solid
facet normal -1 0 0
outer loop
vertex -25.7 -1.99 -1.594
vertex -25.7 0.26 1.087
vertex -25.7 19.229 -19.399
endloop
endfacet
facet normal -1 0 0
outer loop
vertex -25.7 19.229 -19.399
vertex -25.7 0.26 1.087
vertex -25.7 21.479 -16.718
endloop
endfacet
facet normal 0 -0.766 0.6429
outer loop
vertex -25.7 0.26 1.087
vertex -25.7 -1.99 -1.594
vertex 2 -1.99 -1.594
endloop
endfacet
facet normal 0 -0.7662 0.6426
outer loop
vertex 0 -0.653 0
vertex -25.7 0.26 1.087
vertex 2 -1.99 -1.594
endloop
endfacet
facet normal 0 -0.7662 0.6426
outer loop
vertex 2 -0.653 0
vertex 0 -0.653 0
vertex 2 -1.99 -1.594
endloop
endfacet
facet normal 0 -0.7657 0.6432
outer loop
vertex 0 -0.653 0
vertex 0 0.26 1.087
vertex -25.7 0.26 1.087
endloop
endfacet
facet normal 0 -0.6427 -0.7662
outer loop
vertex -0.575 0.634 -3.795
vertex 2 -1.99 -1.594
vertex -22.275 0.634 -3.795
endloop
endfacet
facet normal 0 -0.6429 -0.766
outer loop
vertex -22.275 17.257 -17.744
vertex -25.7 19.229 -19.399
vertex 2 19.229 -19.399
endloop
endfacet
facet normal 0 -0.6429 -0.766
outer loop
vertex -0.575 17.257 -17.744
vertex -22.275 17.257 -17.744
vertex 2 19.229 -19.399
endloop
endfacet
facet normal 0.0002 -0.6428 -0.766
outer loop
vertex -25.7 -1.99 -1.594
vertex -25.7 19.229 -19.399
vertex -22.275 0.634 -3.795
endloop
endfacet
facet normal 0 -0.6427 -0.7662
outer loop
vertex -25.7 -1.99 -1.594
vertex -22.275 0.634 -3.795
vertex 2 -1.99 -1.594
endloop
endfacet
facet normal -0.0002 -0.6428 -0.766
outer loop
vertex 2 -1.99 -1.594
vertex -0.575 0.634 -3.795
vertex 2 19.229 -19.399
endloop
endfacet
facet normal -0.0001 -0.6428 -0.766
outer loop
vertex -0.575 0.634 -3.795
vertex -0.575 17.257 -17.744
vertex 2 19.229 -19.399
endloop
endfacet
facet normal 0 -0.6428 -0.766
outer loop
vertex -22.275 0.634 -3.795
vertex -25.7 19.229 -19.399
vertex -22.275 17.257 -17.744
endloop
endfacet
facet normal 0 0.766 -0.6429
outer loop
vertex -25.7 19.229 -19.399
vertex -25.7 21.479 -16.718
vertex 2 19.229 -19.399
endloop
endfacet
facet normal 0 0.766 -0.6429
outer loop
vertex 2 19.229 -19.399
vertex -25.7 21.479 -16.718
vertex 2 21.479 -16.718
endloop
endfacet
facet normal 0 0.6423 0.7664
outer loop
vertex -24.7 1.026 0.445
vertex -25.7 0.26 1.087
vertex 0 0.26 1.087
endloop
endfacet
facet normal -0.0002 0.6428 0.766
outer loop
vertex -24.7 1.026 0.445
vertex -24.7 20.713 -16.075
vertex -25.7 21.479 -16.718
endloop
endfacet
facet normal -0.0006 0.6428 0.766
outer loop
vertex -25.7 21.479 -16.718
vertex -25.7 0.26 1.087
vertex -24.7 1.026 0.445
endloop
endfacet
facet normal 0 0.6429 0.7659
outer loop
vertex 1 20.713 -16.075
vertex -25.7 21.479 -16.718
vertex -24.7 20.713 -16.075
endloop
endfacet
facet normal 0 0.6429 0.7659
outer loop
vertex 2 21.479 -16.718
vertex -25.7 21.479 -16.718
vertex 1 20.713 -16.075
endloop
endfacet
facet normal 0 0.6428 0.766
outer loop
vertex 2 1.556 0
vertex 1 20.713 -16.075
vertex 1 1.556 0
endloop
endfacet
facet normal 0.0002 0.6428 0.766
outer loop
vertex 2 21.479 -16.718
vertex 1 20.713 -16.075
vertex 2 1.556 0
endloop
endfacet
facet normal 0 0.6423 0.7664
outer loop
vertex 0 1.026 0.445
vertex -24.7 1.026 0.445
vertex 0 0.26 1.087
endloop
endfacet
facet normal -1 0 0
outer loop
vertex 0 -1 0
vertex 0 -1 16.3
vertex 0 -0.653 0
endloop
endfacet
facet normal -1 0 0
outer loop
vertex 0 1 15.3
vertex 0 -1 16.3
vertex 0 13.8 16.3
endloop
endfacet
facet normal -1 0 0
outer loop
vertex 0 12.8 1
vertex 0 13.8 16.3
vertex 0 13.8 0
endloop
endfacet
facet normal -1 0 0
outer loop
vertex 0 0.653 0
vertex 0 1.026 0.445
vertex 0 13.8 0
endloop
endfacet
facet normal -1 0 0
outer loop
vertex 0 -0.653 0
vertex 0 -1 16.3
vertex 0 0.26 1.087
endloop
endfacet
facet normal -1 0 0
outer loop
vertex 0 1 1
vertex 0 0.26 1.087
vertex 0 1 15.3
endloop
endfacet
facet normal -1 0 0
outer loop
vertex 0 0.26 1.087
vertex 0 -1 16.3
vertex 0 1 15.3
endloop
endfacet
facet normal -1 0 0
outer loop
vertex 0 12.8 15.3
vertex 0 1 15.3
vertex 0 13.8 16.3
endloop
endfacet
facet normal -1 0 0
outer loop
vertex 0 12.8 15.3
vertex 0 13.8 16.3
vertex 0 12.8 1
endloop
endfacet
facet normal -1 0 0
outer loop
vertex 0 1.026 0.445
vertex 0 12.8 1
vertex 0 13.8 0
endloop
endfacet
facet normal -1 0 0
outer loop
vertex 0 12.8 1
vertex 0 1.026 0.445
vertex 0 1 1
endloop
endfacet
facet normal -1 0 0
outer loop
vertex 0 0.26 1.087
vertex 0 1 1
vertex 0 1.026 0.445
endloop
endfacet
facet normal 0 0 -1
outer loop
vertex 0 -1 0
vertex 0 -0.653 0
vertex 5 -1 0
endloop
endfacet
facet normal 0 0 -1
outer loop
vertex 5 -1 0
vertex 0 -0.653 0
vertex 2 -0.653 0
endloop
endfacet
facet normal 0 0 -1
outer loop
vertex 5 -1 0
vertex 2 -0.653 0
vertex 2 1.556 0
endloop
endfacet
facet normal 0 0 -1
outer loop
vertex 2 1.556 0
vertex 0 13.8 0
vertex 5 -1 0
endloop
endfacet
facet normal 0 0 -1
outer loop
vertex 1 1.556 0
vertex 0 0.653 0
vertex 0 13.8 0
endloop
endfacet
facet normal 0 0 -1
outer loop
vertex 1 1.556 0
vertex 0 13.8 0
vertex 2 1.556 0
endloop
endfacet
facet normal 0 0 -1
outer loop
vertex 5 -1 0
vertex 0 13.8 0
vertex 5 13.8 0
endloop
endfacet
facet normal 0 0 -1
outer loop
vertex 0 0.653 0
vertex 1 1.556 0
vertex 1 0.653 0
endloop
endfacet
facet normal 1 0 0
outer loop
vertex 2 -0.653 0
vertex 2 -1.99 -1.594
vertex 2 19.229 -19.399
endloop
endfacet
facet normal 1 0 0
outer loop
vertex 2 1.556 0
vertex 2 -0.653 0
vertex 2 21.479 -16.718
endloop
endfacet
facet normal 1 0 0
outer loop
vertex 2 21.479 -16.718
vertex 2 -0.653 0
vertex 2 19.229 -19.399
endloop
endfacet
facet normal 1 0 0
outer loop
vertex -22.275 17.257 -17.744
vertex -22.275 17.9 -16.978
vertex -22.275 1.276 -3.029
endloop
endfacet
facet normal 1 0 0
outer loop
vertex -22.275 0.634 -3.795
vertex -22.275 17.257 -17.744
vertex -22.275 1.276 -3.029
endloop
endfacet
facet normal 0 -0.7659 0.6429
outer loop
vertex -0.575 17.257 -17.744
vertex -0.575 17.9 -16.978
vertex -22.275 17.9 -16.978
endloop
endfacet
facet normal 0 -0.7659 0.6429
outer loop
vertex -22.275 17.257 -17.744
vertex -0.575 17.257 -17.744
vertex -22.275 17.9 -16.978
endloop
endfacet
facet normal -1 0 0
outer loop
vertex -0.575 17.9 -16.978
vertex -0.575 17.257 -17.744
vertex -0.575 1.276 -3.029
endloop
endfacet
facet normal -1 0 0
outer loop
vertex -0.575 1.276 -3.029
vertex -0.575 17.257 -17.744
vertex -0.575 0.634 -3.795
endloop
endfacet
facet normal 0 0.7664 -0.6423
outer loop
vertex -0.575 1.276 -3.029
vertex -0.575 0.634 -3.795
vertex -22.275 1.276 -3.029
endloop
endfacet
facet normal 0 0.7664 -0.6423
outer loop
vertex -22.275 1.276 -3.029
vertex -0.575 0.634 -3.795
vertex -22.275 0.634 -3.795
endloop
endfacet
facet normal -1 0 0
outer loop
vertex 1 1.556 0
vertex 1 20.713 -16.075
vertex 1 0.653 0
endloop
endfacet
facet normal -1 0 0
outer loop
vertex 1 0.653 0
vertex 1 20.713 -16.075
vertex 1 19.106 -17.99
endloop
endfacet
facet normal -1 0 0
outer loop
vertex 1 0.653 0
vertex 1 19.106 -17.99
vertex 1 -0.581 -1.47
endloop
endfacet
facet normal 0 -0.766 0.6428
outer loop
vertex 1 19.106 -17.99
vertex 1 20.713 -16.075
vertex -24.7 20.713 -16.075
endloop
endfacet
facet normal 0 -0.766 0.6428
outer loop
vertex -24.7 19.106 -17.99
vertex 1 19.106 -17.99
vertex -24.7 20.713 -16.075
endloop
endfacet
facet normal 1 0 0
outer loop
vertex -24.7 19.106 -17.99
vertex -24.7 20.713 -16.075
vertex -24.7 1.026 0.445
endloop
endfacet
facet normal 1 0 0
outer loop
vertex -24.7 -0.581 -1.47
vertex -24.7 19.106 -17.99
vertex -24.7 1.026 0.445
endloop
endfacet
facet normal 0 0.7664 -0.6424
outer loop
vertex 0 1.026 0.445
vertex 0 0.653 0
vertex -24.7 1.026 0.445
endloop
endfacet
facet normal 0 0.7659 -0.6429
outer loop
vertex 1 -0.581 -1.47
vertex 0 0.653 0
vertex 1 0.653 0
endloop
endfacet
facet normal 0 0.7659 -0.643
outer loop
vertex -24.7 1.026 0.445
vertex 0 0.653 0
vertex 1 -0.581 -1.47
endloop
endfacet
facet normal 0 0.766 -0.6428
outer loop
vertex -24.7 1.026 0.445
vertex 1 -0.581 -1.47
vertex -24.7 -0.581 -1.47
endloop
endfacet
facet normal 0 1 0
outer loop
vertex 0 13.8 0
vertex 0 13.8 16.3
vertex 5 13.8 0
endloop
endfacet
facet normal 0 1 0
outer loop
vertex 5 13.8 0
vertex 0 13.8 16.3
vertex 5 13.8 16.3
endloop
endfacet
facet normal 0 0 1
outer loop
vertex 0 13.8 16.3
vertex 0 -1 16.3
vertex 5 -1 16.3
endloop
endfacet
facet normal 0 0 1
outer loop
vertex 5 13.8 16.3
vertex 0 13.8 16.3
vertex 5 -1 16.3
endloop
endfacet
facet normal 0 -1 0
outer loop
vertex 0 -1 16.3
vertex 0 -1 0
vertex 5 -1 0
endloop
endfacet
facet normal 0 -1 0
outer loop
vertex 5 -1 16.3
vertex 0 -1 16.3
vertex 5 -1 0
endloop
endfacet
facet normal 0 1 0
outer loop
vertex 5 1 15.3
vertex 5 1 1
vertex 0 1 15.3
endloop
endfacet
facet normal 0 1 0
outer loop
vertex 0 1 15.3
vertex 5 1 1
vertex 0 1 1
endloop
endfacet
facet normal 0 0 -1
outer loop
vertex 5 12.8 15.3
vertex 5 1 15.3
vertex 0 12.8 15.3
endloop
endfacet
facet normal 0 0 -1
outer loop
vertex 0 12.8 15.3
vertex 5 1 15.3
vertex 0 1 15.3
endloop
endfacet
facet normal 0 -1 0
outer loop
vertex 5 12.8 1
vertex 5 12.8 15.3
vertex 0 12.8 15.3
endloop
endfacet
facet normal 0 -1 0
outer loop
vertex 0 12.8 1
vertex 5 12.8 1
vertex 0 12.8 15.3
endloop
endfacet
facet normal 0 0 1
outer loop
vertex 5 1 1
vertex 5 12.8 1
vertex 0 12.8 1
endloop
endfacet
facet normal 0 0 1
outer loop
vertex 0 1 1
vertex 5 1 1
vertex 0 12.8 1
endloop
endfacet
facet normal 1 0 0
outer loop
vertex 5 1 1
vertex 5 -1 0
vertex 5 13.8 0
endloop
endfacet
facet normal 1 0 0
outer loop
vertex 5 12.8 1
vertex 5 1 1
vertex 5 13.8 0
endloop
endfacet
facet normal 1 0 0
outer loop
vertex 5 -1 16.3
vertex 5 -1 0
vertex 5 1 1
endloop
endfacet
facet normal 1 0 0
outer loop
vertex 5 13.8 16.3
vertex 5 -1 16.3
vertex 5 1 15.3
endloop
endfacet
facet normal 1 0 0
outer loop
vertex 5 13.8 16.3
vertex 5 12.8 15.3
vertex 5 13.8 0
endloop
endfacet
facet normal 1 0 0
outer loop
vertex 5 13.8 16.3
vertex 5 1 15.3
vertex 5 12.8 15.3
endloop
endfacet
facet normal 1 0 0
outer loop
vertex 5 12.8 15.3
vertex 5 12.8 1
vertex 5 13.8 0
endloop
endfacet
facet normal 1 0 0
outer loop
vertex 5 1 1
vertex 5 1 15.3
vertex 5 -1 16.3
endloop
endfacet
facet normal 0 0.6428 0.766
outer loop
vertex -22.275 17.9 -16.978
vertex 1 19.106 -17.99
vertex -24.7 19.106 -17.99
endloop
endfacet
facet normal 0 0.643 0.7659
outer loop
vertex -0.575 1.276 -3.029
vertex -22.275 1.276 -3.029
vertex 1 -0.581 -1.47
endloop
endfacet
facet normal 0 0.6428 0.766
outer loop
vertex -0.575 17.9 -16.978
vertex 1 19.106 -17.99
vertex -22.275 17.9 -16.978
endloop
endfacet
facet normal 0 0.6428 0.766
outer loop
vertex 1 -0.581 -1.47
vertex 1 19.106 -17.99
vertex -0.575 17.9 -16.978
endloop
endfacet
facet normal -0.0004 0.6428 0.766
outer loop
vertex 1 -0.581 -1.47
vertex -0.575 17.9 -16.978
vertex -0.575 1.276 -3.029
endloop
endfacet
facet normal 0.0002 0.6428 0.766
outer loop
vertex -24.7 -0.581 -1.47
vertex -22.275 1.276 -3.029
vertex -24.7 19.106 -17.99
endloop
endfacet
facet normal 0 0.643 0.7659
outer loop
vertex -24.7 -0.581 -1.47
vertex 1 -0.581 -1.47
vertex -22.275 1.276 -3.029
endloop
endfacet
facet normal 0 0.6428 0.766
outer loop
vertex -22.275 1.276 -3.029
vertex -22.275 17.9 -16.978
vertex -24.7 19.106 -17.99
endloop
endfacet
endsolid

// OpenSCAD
thickness = 1;
prismHeight = 11.8;
prismWidth = 5;
prismDepth = 14.3;
mirrorSide = 25.7;
mirrorSideEdge = 4;
mirrorDepth = 2.5;
difference() {
translate([0, -thickness, 0]) cube([prismWidth, prismHeight + thickness * 3, prismDepth + thickness * 2]);
translate([0, thickness, thickness]) cube([prismWidth, prismHeight, prismDepth]);
translate([0, thickness, thickness]) circle(5);
}
rotate([-40, 0, 0]) {
translate([-mirrorSide, -.5, -2.5]) {
difference() {
cube([mirrorSide + 2 * thickness, mirrorSide + 2 * thickness, mirrorDepth + thickness]);
translate([thickness, thickness, thickness]) cube([mirrorSide, mirrorSide, mirrorDepth]);
translate([thickness + (mirrorSide/4) - mirrorSideEdge, thickness + (mirrorSide/4) - mirrorSideEdge, 0]) cube([mirrorSide - mirrorSideEdge, mirrorSide - mirrorSideEdge, mirrorDepth]);
}
}
}
